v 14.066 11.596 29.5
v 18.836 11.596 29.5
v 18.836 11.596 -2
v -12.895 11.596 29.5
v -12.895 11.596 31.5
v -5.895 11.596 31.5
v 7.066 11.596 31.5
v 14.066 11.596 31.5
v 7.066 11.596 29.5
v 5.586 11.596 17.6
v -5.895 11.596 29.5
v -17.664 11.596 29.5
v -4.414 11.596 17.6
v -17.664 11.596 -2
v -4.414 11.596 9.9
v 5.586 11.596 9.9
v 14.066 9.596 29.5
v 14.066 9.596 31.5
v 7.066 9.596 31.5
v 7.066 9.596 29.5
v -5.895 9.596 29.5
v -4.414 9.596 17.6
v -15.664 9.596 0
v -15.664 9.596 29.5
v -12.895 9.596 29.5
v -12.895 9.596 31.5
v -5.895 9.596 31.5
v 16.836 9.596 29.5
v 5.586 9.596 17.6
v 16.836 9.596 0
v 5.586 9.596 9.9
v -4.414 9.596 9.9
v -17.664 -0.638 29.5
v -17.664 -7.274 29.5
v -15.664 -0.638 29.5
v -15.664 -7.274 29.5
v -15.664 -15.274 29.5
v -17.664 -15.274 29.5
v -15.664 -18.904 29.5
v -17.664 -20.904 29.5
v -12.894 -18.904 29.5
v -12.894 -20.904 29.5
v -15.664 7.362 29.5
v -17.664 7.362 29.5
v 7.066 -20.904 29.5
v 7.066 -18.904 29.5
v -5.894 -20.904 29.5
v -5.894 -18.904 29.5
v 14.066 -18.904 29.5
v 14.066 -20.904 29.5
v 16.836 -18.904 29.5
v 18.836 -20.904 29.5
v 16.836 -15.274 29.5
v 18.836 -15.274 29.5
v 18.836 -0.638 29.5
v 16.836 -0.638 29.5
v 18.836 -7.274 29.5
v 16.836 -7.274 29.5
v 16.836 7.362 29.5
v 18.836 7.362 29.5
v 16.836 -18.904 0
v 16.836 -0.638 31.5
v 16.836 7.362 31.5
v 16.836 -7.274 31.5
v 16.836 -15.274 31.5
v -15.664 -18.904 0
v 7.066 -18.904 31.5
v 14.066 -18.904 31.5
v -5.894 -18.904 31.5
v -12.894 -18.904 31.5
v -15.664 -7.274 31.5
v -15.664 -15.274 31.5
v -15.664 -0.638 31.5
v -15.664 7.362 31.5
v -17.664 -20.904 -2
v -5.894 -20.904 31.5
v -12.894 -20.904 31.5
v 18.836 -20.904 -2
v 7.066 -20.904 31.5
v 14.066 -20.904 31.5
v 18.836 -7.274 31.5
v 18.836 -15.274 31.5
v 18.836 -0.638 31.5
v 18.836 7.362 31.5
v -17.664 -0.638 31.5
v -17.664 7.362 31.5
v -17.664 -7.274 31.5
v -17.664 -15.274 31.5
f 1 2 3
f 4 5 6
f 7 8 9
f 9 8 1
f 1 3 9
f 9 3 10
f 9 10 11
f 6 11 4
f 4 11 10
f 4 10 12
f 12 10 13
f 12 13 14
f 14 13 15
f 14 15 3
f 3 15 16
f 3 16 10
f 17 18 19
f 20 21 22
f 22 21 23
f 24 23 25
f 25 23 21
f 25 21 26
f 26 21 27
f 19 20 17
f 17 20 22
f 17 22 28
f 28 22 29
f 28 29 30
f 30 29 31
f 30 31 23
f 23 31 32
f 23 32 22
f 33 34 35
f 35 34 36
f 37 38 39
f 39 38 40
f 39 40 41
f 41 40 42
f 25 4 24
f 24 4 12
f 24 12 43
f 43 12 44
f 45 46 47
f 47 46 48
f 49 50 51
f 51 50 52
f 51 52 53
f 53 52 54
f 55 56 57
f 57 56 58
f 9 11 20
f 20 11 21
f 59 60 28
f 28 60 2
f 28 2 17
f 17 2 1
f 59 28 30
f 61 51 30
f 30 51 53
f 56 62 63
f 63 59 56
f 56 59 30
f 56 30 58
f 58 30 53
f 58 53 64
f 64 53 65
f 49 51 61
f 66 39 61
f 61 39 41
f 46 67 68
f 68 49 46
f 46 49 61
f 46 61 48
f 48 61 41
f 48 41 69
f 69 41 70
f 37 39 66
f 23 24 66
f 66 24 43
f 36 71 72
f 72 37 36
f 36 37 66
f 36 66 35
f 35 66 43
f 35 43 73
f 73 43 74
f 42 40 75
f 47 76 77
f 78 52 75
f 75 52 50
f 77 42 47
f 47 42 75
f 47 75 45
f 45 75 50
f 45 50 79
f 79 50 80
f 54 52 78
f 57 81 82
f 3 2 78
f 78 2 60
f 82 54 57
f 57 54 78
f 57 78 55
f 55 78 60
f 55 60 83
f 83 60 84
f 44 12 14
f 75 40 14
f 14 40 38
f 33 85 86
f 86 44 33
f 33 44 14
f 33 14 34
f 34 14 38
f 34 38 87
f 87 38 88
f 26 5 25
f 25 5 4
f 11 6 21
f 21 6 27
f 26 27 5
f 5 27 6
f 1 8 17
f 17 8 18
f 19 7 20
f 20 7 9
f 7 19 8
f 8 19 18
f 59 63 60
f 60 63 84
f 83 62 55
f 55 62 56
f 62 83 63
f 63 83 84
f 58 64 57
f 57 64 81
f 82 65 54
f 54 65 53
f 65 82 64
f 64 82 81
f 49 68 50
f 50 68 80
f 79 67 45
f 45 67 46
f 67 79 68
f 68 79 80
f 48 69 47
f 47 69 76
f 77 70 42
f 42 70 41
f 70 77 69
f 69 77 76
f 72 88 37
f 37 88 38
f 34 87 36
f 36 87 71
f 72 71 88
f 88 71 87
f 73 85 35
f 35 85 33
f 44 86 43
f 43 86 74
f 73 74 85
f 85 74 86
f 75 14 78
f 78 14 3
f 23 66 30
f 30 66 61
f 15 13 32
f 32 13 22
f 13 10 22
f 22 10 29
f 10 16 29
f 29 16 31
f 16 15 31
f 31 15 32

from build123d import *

# Parameters (mm, degrees)
ESBO_O1_W                = 36.5
ESBO_O1_H                = 32.5
ESBO_O1_W_2              = 32.5
ESBO_O1_H_2              = 28.5
RESSALTO_EXTRUS_O1_DEPTH = 29.5
ESBO_O1_3_W              = 7
ESBO_O1_3_H              = 2
ESBO_O1_3_W_2            = 2
ESBO_O1_3_H_2            = 8
RESSALTO_EXTRUS_O2_DEPTH = 31.5
ESBO_O1_4_W              = 36.5
ESBO_O1_4_H              = 32.5
RESSALTO_EXTRUS_O3_DEPTH = 2
ESBO_O2_W                = 10
ESBO_O2_H                = 7.7
CORTE_EXTRUS_O1_DEPTH    = 43.237292821


with BuildPart() as part:
    # Esboço1 → Ressalto-extrusão1 (new body)
    with BuildSketch(Plane.XY):
        with Locations((0.585584979, -4.653579677)):
            Rectangle(ESBO_O1_W, ESBO_O1_H)
        with Locations((0.585584979, -4.653579677)):
            Rectangle(ESBO_O1_W_2, ESBO_O1_H_2, mode=Mode.SUBTRACT)
    extrude(amount=RESSALTO_EXTRUS_O1_DEPTH)

    # Esboço1<3> → Ressalto-extrusão2 (add)
    with BuildSketch(Plane.XY):
        with Locations((-9.394784536, 10.596420323)):
            Rectangle(ESBO_O1_3_W, ESBO_O1_3_H)
        with Locations((-16.664415021, 3.362009238)):
            Rectangle(ESBO_O1_3_W_2, ESBO_O1_3_H_2)
        with Locations((10.565584979, 10.596420323)):
            Rectangle(ESBO_O1_3_W, ESBO_O1_3_H)
        with Locations((-16.664415021, -11.274249423)):
            Rectangle(ESBO_O1_3_W_2, ESBO_O1_3_H_2)
        with Locations((17.835584979, 3.362009238)):
            Rectangle(ESBO_O1_3_W_2, ESBO_O1_3_H_2)
        with Locations((-9.394415021, -19.903579677)):
            Rectangle(ESBO_O1_3_W, ESBO_O1_3_H)
        with Locations((17.835584979, -11.274249423)):
            Rectangle(ESBO_O1_3_W_2, ESBO_O1_3_H_2)
        with Locations((10.565584979, -19.903579677)):
            Rectangle(ESBO_O1_3_W, ESBO_O1_3_H)
    extrude(amount=RESSALTO_EXTRUS_O2_DEPTH)

    # Esboço1<4> → Ressalto-extrusão3 (add)
    with BuildSketch(Plane.XY):
        with Locations((0.585584979, -4.653579677)):
            Rectangle(ESBO_O1_4_W, ESBO_O1_4_H)
    extrude(amount=-RESSALTO_EXTRUS_O3_DEPTH)

    # Esboço2 → Corte-extrusão1 (cut, through all)
    with BuildSketch(Plane(origin=(0, 0, 0), x_dir=(1, 0, 0), z_dir=(0, 1, 0))):
        with Locations((0.585584979, -13.75)):
            Rectangle(ESBO_O2_W, ESBO_O2_H)
    extrude(amount=CORTE_EXTRUS_O1_DEPTH, mode=Mode.SUBTRACT)


solid = part.part
